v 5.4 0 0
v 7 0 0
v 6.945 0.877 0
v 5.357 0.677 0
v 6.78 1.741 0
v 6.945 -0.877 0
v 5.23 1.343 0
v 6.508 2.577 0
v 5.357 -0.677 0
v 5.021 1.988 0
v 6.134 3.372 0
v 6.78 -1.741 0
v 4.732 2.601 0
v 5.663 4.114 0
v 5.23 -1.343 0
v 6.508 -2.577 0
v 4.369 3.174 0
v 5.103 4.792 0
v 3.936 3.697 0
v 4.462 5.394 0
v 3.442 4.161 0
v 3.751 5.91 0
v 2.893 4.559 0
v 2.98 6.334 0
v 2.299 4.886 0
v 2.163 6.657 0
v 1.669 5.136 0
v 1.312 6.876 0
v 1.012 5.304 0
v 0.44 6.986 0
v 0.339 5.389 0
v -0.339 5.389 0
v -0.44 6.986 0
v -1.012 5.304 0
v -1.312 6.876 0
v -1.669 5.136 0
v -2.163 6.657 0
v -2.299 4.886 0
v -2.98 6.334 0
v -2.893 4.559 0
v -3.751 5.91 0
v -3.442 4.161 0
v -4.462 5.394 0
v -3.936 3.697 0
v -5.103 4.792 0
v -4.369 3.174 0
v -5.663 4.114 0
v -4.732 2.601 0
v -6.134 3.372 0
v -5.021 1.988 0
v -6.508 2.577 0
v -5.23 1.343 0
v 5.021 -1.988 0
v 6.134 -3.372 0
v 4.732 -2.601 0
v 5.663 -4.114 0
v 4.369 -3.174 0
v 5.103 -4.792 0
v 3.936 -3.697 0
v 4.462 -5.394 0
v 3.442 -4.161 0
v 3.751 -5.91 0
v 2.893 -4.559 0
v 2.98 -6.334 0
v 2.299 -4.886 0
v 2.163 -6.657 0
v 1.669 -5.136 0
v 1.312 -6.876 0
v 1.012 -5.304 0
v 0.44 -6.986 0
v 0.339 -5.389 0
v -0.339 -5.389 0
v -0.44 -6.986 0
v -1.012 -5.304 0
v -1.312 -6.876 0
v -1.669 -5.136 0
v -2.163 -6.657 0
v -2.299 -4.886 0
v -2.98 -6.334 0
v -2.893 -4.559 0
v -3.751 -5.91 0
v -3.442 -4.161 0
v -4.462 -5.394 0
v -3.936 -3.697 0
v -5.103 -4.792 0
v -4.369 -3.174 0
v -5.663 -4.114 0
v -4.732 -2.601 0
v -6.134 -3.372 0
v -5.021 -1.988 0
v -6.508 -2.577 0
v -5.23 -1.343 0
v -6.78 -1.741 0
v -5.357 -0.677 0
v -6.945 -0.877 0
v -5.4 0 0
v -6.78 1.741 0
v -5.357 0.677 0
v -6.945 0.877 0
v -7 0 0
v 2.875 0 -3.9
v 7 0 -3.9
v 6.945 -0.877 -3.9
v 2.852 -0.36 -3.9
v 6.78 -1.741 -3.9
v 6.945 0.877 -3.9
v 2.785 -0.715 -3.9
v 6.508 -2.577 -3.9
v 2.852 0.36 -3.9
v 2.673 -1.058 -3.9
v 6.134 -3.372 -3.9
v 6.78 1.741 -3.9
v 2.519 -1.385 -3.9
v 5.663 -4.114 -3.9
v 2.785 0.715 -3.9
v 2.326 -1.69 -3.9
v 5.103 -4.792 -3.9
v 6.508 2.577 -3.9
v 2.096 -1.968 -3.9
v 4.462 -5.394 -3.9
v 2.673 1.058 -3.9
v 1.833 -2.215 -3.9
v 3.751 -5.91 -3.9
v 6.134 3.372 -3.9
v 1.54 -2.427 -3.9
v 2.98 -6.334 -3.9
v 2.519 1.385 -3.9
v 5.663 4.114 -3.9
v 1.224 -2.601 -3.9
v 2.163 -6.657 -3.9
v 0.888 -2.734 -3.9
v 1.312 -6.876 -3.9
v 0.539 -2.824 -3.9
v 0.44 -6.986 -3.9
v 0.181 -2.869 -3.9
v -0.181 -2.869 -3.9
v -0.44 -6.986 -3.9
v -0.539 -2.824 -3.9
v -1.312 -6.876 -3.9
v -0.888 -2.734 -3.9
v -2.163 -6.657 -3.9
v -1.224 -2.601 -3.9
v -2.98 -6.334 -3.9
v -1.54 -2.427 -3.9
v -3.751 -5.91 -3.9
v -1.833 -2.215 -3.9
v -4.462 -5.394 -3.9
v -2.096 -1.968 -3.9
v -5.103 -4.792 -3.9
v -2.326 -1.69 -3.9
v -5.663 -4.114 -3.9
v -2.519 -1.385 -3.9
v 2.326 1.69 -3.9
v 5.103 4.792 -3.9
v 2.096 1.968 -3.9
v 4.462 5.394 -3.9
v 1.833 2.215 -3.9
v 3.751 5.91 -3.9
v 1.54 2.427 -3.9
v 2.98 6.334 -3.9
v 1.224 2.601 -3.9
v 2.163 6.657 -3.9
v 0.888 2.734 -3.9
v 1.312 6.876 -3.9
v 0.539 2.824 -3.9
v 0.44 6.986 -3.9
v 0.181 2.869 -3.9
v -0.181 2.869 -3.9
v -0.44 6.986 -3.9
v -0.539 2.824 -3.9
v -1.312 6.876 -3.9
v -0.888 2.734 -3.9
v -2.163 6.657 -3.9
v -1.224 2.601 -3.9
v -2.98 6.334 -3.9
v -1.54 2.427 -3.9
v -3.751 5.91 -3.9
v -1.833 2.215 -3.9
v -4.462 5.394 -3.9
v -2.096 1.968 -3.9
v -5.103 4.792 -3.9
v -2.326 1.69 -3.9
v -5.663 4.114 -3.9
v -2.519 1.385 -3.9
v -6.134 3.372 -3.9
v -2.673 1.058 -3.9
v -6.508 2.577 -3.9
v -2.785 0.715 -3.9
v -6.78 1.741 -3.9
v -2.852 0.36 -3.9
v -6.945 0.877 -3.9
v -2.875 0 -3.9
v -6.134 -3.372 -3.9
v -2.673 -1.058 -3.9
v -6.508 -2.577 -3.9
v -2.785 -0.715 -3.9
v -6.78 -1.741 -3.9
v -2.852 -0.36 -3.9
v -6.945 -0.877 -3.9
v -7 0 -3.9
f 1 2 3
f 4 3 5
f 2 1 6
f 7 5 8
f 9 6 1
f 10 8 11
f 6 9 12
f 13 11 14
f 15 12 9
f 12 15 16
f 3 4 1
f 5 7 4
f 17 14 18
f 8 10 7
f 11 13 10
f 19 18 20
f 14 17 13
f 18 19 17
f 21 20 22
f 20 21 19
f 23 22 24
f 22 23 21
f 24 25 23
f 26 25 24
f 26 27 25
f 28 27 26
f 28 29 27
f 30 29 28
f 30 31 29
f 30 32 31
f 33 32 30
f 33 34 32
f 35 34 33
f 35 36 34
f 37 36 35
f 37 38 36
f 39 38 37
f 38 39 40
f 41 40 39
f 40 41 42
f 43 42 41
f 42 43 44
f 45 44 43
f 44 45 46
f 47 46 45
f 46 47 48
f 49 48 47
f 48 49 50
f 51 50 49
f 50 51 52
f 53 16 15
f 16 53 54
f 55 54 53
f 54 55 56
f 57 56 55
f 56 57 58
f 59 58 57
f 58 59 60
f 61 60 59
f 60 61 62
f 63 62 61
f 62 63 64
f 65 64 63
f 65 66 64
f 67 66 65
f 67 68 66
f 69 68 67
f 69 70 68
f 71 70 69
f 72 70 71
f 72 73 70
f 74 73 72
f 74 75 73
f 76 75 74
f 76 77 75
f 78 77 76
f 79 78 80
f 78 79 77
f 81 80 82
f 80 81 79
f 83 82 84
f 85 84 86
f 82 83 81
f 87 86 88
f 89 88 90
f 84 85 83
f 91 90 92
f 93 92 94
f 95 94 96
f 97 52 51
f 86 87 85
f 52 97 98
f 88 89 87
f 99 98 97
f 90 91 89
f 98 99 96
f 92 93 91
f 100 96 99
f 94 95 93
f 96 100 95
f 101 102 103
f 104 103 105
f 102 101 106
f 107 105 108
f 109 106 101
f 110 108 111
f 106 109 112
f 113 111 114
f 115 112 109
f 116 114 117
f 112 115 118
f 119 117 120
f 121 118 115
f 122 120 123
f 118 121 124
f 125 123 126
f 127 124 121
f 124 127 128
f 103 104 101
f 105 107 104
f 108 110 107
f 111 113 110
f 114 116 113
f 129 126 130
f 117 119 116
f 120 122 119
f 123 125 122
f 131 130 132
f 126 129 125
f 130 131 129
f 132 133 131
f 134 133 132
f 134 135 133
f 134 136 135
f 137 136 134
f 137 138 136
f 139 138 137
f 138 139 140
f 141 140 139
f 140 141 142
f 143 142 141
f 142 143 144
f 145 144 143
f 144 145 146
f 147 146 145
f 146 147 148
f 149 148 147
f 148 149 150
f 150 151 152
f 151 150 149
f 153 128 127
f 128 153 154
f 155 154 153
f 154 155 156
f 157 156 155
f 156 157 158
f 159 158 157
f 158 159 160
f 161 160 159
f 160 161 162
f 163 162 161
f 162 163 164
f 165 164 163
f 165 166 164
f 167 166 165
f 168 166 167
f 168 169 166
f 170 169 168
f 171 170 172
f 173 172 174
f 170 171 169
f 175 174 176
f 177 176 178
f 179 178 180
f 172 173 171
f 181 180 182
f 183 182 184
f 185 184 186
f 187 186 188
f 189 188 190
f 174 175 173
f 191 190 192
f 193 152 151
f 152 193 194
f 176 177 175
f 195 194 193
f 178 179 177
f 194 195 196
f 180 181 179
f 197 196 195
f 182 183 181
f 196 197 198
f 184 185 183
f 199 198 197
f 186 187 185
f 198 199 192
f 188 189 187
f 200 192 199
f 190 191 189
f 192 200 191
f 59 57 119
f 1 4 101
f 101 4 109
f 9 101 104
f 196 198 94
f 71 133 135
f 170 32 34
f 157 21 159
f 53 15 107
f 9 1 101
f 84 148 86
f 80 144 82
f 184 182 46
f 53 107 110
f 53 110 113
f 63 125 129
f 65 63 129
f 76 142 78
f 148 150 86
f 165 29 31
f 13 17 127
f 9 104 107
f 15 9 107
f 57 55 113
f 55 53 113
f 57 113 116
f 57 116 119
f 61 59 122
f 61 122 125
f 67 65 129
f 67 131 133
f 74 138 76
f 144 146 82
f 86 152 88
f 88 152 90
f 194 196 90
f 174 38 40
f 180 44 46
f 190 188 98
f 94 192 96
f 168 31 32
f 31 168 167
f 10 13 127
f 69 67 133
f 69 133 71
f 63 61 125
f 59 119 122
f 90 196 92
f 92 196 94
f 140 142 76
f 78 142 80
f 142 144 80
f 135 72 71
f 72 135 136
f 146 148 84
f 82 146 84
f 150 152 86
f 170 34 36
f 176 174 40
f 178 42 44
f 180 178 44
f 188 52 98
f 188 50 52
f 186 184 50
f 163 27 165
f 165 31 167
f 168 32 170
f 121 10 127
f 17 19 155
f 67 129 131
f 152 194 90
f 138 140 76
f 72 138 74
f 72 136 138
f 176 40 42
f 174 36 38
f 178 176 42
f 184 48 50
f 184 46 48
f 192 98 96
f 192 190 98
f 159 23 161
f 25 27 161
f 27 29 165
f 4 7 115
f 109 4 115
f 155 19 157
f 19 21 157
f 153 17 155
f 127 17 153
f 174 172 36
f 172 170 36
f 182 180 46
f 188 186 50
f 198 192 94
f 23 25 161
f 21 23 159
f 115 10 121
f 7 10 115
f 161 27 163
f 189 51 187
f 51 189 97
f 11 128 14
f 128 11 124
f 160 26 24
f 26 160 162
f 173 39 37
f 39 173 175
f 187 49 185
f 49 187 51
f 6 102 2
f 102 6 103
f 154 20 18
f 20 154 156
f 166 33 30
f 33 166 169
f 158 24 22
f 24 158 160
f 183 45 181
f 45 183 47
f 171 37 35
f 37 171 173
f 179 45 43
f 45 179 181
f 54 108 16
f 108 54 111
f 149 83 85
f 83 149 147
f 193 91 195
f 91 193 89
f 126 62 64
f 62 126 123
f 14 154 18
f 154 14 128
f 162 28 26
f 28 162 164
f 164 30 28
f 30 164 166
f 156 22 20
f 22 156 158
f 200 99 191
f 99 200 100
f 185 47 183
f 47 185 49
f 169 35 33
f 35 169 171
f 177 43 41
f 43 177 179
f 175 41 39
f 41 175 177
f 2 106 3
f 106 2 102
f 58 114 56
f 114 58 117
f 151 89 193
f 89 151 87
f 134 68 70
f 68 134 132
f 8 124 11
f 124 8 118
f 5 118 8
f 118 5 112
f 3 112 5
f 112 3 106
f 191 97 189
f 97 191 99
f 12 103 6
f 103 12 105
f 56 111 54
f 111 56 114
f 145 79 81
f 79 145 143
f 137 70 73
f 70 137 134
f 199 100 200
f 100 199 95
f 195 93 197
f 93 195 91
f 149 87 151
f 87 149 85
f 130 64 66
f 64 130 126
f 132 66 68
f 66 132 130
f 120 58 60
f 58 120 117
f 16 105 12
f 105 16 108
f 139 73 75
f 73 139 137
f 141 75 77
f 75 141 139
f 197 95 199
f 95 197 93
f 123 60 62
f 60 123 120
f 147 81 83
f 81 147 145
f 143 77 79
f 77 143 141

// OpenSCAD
$fn = 50;


difference() {
	union() {
		translate(v = [0, 0, -3.9000000000]) {
			cylinder(h = 3.9000000000, r = 7.0000000000);
		}
	}
	union() {
		translate(v = [0, 0, 0]) {
			rotate(a = [0, 0, 0]) {
				difference() {
					union() {
						#translate(v = [0, 0, -3.9000000000]) {
							cylinder(h = 3.9000000000, r = 2.6000000000);
						}
						#translate(v = [0, 0, -3.9000000000]) {
							cylinder(h = 3.9000000000, r1 = 2.8750000000, r2 = 5.4000000000);
						}
						#translate(v = [0, 0, -3.9000000000]) {
							cylinder(h = 3.9000000000, r = 2.8750000000);
						}
						#translate(v = [0, 0, -3.9000000000]) {
							cylinder(h = 3.9000000000, r = 2.6000000000);
						}
					}
					union();
				}
			}
		}
	}
}
